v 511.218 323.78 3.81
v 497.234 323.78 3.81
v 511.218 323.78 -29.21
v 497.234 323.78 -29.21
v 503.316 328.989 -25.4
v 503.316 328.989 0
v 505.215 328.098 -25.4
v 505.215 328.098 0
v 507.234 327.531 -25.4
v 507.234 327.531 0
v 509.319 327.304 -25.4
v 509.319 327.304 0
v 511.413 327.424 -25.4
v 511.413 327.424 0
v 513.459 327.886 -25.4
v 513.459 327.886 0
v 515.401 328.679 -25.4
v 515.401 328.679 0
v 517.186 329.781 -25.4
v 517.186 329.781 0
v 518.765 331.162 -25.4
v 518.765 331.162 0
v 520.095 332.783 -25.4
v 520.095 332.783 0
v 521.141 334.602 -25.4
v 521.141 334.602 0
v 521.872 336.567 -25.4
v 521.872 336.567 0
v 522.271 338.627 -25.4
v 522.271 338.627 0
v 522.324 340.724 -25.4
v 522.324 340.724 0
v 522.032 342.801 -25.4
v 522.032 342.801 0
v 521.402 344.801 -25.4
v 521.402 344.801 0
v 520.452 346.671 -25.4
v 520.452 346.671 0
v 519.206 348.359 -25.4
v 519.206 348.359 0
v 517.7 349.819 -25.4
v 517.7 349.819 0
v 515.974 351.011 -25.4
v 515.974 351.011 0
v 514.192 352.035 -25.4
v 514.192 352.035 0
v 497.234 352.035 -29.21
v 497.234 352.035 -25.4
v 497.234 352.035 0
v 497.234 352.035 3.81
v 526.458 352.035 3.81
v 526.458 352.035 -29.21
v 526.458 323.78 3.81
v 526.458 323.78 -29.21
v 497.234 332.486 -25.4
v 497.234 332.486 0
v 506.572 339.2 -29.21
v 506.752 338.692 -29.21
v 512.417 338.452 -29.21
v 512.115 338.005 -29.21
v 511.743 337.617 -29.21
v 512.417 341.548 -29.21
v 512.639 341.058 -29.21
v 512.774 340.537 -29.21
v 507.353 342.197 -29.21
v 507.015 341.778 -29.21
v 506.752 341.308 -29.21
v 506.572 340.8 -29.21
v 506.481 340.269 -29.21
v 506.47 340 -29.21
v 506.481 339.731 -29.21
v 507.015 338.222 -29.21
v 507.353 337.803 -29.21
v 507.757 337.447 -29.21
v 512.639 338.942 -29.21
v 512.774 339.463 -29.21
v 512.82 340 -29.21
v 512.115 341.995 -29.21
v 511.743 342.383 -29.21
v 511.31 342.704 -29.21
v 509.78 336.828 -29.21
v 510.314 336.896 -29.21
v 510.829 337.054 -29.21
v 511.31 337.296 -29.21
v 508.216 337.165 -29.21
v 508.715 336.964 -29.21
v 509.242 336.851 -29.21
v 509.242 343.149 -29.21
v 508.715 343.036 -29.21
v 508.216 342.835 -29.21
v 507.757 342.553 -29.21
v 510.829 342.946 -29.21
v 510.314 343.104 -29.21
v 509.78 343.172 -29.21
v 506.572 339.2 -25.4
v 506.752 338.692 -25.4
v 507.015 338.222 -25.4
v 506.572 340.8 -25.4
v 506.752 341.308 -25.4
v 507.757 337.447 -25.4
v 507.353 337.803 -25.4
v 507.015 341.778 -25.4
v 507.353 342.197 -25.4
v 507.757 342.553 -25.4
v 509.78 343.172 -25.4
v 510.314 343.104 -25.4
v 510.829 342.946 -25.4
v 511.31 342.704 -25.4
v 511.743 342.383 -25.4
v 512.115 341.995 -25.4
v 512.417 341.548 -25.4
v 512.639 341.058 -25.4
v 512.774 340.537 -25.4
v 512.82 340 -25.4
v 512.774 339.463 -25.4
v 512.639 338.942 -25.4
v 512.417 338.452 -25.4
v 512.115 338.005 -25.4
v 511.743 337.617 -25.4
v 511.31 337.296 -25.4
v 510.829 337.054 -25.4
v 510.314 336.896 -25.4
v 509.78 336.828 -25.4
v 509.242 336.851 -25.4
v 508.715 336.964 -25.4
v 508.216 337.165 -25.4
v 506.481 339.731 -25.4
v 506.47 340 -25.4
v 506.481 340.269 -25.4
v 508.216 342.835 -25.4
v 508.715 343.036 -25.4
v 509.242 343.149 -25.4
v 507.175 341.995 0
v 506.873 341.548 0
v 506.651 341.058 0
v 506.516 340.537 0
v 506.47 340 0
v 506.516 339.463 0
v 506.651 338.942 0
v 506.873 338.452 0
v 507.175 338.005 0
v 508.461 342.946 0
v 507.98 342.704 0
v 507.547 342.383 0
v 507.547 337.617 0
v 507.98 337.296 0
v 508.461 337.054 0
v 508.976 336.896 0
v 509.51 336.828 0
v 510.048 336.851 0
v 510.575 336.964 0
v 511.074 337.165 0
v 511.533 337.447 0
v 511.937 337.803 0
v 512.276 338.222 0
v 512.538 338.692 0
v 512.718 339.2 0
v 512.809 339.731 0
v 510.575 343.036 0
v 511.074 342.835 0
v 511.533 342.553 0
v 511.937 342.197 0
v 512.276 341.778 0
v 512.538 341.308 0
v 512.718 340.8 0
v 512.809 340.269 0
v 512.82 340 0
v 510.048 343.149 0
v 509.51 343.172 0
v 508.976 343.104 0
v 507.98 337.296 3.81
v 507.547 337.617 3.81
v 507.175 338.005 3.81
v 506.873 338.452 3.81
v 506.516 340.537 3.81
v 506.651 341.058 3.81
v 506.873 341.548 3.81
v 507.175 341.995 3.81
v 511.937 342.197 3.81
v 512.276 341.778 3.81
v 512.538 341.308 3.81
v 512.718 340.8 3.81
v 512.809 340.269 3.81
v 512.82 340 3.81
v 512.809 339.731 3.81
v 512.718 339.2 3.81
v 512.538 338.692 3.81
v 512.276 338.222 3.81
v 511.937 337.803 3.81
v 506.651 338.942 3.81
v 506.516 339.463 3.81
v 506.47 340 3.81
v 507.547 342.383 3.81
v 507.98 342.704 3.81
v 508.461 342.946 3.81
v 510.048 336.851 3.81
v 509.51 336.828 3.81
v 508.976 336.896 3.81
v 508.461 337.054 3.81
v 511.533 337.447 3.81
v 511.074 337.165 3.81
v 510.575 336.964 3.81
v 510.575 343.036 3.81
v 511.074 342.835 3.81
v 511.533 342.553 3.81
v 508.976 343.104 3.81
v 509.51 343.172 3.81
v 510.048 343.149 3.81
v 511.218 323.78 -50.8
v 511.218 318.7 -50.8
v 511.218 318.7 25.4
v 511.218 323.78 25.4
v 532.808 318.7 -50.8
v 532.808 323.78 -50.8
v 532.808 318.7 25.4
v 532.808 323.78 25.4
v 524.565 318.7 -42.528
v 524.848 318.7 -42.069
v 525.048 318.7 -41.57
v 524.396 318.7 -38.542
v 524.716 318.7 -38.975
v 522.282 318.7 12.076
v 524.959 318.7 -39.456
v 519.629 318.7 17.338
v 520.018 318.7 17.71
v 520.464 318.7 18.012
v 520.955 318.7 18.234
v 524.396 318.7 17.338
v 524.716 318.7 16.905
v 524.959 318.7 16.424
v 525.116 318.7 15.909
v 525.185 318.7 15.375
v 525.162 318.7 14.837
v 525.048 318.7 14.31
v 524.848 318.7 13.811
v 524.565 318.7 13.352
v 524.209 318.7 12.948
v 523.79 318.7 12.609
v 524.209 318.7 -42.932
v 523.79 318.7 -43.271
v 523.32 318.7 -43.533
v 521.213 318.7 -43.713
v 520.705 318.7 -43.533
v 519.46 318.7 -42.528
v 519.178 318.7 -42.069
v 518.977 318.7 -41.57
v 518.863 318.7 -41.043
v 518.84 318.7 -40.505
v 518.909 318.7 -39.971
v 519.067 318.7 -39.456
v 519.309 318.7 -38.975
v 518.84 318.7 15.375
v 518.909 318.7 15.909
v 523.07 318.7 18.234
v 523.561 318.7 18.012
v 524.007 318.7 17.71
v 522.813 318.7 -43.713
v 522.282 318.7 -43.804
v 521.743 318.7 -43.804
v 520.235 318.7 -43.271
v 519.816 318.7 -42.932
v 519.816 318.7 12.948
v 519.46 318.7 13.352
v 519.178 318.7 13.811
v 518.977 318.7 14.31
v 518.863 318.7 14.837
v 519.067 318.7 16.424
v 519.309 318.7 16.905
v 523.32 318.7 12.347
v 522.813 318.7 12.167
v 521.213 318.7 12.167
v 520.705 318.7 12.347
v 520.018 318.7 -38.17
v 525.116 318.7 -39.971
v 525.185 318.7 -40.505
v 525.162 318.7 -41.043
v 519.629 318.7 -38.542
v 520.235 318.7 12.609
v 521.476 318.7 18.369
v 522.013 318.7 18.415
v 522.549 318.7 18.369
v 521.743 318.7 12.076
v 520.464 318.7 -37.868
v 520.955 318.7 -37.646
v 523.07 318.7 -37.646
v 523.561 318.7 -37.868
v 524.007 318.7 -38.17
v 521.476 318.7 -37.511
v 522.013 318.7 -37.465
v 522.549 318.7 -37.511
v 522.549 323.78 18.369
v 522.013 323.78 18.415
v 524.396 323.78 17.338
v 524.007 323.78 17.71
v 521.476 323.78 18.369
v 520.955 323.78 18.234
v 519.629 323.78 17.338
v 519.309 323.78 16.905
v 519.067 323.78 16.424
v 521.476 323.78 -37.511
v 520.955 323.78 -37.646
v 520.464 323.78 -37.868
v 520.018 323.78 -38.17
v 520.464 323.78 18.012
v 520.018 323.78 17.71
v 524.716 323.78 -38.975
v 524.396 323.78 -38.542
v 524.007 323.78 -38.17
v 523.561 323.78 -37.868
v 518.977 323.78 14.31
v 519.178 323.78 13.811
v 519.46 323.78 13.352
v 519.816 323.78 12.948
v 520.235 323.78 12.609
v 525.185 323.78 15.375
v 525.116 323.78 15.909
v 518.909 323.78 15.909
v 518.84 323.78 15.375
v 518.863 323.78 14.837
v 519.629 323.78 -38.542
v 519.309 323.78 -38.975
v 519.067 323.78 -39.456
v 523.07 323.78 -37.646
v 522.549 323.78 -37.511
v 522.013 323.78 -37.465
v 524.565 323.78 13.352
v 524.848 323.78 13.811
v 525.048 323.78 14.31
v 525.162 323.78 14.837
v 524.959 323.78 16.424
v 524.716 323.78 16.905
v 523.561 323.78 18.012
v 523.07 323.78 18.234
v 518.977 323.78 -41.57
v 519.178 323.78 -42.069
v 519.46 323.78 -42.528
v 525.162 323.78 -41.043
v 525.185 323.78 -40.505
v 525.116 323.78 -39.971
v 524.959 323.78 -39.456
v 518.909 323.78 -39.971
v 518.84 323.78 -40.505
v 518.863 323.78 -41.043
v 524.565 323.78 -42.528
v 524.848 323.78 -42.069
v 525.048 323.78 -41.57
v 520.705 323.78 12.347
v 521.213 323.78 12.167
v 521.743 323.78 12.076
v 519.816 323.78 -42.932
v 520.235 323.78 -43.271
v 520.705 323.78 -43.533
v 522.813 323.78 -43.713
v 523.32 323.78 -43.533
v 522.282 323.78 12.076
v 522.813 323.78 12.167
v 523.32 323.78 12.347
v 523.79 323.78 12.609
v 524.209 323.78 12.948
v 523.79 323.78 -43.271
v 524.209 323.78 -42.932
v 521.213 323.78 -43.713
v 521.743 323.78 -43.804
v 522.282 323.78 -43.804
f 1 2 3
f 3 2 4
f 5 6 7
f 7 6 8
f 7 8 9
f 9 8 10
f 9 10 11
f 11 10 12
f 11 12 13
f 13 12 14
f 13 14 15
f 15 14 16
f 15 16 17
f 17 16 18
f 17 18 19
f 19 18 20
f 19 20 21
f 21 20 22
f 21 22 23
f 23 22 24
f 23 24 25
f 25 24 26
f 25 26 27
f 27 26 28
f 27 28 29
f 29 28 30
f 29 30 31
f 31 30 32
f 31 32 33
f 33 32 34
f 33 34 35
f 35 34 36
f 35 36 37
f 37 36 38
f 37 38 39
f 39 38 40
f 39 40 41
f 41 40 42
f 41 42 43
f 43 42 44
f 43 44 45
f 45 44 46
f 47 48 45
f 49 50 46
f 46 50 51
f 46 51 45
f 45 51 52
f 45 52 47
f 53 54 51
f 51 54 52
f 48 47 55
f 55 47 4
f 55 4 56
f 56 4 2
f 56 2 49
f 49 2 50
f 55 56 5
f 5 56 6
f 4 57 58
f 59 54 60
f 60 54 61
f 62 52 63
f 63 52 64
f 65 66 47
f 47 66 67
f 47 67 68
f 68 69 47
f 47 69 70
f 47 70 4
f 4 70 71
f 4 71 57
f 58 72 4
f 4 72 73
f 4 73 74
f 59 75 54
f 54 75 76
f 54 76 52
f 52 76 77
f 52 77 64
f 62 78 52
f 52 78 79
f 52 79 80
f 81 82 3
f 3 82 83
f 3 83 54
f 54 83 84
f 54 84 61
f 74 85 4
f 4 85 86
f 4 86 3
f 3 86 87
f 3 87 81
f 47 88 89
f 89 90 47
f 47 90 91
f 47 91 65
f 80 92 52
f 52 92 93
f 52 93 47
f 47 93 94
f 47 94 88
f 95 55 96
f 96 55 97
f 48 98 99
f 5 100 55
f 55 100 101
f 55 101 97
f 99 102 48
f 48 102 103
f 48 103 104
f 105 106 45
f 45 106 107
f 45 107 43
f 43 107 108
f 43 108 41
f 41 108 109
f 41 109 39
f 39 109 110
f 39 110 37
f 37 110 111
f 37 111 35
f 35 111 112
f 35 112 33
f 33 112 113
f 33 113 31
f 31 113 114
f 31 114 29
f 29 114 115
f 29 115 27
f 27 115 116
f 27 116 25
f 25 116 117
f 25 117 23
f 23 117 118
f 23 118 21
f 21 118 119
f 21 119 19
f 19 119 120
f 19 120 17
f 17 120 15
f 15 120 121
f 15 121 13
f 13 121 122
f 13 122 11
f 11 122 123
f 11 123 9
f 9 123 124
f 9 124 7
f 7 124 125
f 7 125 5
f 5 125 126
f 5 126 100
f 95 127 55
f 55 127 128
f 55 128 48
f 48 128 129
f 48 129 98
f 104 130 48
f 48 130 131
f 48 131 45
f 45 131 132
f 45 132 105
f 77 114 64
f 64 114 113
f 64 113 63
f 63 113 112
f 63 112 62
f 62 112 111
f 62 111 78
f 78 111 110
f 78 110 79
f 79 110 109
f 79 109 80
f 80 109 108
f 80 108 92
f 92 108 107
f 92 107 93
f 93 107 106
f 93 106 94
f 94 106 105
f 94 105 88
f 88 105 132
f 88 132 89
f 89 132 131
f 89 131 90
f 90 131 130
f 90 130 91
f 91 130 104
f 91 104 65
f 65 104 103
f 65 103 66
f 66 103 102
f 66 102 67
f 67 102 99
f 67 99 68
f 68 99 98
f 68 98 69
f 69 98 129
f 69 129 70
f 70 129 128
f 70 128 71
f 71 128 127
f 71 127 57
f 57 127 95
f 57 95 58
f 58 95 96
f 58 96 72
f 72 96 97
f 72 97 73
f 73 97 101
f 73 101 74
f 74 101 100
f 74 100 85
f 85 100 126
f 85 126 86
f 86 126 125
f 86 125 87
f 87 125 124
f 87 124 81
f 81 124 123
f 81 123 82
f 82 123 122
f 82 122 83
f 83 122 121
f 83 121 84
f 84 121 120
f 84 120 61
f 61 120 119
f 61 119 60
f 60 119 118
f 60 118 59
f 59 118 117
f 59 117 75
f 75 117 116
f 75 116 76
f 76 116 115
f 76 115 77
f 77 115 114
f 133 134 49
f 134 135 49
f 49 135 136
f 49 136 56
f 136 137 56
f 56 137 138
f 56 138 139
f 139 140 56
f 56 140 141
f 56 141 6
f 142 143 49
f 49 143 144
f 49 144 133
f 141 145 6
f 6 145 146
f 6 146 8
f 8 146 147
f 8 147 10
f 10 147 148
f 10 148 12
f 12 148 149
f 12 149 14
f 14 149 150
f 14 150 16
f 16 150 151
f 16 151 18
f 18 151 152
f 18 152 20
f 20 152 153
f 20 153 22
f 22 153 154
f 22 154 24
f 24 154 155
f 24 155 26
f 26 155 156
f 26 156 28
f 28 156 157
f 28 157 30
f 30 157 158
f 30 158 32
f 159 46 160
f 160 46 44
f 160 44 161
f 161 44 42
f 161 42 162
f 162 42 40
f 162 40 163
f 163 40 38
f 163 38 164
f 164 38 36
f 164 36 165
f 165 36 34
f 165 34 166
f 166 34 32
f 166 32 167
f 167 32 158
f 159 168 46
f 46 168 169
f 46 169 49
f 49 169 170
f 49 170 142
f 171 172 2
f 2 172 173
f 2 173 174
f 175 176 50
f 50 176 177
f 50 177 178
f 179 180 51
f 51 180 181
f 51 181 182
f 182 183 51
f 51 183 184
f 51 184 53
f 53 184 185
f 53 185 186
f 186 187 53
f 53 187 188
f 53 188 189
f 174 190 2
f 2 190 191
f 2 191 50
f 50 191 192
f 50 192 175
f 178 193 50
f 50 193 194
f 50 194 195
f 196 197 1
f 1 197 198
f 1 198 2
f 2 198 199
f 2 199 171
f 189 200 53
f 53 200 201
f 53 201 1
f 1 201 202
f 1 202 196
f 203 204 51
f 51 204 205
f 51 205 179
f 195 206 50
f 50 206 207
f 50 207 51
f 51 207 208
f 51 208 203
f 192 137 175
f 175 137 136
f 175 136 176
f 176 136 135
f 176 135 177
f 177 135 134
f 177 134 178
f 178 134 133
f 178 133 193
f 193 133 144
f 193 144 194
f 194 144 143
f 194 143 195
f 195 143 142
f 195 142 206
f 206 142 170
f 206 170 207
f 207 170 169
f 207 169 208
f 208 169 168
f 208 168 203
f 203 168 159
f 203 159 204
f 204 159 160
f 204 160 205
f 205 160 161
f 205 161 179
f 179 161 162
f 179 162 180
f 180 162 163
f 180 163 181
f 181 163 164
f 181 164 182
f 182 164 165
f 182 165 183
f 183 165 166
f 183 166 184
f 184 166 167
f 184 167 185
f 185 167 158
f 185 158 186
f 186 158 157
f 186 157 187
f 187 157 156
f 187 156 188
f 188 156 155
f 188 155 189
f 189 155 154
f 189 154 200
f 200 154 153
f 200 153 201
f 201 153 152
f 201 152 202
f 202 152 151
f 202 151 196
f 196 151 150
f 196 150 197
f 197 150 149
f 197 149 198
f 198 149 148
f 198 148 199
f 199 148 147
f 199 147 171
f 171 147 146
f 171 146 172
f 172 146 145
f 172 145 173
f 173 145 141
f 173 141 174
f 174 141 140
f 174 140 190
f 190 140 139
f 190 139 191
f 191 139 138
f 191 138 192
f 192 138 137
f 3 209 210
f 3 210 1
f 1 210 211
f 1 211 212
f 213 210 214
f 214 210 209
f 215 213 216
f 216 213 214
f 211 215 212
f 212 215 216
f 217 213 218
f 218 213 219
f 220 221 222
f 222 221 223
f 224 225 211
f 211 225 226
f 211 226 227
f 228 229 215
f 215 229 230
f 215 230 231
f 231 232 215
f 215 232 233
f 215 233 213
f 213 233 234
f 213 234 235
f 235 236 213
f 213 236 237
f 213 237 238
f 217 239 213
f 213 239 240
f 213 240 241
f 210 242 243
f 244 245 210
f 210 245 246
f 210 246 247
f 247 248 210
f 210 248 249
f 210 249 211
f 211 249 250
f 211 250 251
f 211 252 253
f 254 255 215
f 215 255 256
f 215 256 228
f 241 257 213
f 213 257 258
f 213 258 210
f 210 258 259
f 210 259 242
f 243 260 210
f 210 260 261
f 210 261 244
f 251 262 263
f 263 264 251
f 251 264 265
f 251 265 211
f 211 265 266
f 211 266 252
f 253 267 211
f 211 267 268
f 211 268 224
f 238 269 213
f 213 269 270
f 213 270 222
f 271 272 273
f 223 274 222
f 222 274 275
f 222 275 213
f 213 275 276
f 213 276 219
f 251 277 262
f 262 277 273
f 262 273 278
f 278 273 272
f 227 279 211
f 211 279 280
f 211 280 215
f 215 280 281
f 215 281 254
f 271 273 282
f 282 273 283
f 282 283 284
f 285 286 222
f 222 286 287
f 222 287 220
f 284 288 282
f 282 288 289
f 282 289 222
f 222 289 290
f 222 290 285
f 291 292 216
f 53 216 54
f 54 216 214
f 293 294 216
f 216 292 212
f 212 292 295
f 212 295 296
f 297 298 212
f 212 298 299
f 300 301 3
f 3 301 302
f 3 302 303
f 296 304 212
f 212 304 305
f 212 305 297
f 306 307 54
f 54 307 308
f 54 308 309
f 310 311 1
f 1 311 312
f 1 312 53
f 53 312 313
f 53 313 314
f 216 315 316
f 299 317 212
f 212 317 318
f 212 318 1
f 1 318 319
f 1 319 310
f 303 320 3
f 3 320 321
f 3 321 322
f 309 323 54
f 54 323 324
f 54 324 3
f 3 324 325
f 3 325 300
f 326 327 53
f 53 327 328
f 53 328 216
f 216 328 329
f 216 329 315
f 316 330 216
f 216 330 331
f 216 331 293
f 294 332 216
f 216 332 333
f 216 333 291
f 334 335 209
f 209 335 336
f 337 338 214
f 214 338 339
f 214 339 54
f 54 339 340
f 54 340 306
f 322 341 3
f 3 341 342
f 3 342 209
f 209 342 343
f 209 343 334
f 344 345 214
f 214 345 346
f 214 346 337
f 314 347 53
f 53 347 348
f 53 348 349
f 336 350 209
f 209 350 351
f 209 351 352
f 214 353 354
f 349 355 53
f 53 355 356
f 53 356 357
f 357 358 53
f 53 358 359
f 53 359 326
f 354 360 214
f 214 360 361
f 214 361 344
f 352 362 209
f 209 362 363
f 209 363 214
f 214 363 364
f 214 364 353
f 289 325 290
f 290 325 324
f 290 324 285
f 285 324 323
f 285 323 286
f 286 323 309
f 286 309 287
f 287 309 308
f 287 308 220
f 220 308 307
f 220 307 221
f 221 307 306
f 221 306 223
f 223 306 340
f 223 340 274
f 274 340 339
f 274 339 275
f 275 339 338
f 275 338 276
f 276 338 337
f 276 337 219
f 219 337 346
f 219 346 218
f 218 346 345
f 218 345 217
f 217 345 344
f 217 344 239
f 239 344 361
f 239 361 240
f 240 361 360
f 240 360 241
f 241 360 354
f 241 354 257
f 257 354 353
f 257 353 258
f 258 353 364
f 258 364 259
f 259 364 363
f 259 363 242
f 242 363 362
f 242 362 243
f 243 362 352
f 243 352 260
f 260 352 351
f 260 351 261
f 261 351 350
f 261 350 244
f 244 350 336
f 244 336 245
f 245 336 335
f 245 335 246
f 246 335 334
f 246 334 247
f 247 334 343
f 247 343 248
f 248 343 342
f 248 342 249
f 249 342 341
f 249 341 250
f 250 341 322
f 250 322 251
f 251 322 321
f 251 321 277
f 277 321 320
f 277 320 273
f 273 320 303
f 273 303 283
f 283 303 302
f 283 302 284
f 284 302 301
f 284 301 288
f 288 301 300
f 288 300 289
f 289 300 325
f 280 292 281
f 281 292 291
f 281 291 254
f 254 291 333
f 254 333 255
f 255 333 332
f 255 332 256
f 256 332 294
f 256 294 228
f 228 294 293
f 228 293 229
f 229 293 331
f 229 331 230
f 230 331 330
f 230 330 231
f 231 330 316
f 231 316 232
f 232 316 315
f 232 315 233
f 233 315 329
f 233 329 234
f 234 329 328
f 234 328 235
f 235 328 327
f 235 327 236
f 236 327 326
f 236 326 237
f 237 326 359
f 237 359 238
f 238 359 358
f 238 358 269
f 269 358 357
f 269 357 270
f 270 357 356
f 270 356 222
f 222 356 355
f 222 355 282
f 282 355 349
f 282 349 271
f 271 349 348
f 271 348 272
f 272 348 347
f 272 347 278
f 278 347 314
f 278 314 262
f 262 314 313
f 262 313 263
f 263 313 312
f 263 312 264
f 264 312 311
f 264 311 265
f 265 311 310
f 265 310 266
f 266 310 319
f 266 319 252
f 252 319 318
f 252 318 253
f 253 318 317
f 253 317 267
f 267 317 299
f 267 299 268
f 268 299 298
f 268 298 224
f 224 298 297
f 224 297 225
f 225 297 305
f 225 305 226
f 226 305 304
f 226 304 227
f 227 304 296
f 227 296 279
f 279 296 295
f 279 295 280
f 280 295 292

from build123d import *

# Parameters (mm, degrees)
BOSS_EXTRUDE1_DEPTH = 29.21
SKETCH2_R           = 3.175
BOSS_EXTRUDE2_DEPTH = 3.81
BOSS_EXTRUDE4_START = 3.81
SKETCH3_W           = 29.223613814
SKETCH3_H           = 28.25489527
SKETCH3_R           = 3.175
BOSS_EXTRUDE4_DEPTH = 3.81
SKETCH4_W           = 21.59
SKETCH4_H           = 76.2
SKETCH4_R           = 3.175
BOSS_EXTRUDE5_DEPTH = 5.08


with BuildPart() as part:
    # Sketch1 → Boss-Extrude1 (new body)
    with BuildSketch(Plane.XY):
        with BuildLine():
            Line((497.233946268, 332.485515977), (497.233946268, 323.779975182))
            Line((497.233946268, 323.779975182), (526.457560082, 323.779975182))
            Line((526.457560082, 323.779975182), (526.457560082, 352.034870452))
            Line((526.457560082, 352.034870452), (514.19218435, 352.034870452))
            Line((514.19218435, 352.034870452), (515.97416853, 351.010540676))
            ThreePointArc((515.97416853, 351.010540676), (518.254444166, 349.336379834), (520.107560082, 347.198990562))
            ThreePointArc((520.107560082, 347.198990562), (520.655570716, 333.67086151), (508.689794246, 327.335975182))
            ThreePointArc((508.689794246, 327.335975182), (505.910190066, 327.86159111), (503.31589155, 328.989459324))
            Line((503.31589155, 328.989459324), (497.233946268, 332.485515977))
        make_face()
    extrude(amount=-BOSS_EXTRUDE1_DEPTH)

    # Sketch2 → Boss-Extrude2 (add)
    with BuildSketch(Plane(origin=(0, 0, -25.4), x_dir=(-1, 0, 0), z_dir=(0, 0, -1))):
        with BuildLine():
            Line((-514.19218435, 352.034870452), (-497.233946268, 352.034870452))
            Line((-497.233946268, 352.034870452), (-497.233946268, 332.485515977))
            Line((-497.233946268, 332.485515977), (-503.31589155, 328.989459324))
            ThreePointArc((-503.31589155, 328.989459324), (-520.655570716, 333.67086151), (-515.97416853, 351.010540676))
            Line((-515.97416853, 351.010540676), (-514.19218435, 352.034870452))
        make_face()
        with Locations(Location((-509.64503004, 340, 0), (0, 0, 180))):
            Circle(SKETCH2_R, mode=Mode.SUBTRACT)
    extrude(amount=BOSS_EXTRUDE2_DEPTH)

    # Sketch3 → Boss-Extrude4 (add)
    with BuildSketch(Plane.XY.offset(BOSS_EXTRUDE4_START)):
        with Locations((511.845753175, 337.907422817)):
            Rectangle(SKETCH3_W, SKETCH3_H)
        with Locations((509.64503004, 340)):
            Circle(SKETCH3_R, mode=Mode.SUBTRACT)
    extrude(amount=-BOSS_EXTRUDE4_DEPTH)

    # Sketch4 → Boss-Extrude5 (add)
    with BuildSketch(Plane(origin=(0, 323.779975182, 0), x_dir=(1, 0, 0), z_dir=(0, 1, 0))):
        with Locations((522.012560082, 12.7)):
            Rectangle(SKETCH4_W, SKETCH4_H)
        with Locations(Location((522.012560082, 40.64, 0), (0, 0, 270))):
            Circle(SKETCH4_R, mode=Mode.SUBTRACT)
        with Locations(Location((522.012560082, -15.24, 0), (0, 0, 270))):
            Circle(SKETCH4_R, mode=Mode.SUBTRACT)
    extrude(amount=-BOSS_EXTRUDE5_DEPTH)


solid = part.part
